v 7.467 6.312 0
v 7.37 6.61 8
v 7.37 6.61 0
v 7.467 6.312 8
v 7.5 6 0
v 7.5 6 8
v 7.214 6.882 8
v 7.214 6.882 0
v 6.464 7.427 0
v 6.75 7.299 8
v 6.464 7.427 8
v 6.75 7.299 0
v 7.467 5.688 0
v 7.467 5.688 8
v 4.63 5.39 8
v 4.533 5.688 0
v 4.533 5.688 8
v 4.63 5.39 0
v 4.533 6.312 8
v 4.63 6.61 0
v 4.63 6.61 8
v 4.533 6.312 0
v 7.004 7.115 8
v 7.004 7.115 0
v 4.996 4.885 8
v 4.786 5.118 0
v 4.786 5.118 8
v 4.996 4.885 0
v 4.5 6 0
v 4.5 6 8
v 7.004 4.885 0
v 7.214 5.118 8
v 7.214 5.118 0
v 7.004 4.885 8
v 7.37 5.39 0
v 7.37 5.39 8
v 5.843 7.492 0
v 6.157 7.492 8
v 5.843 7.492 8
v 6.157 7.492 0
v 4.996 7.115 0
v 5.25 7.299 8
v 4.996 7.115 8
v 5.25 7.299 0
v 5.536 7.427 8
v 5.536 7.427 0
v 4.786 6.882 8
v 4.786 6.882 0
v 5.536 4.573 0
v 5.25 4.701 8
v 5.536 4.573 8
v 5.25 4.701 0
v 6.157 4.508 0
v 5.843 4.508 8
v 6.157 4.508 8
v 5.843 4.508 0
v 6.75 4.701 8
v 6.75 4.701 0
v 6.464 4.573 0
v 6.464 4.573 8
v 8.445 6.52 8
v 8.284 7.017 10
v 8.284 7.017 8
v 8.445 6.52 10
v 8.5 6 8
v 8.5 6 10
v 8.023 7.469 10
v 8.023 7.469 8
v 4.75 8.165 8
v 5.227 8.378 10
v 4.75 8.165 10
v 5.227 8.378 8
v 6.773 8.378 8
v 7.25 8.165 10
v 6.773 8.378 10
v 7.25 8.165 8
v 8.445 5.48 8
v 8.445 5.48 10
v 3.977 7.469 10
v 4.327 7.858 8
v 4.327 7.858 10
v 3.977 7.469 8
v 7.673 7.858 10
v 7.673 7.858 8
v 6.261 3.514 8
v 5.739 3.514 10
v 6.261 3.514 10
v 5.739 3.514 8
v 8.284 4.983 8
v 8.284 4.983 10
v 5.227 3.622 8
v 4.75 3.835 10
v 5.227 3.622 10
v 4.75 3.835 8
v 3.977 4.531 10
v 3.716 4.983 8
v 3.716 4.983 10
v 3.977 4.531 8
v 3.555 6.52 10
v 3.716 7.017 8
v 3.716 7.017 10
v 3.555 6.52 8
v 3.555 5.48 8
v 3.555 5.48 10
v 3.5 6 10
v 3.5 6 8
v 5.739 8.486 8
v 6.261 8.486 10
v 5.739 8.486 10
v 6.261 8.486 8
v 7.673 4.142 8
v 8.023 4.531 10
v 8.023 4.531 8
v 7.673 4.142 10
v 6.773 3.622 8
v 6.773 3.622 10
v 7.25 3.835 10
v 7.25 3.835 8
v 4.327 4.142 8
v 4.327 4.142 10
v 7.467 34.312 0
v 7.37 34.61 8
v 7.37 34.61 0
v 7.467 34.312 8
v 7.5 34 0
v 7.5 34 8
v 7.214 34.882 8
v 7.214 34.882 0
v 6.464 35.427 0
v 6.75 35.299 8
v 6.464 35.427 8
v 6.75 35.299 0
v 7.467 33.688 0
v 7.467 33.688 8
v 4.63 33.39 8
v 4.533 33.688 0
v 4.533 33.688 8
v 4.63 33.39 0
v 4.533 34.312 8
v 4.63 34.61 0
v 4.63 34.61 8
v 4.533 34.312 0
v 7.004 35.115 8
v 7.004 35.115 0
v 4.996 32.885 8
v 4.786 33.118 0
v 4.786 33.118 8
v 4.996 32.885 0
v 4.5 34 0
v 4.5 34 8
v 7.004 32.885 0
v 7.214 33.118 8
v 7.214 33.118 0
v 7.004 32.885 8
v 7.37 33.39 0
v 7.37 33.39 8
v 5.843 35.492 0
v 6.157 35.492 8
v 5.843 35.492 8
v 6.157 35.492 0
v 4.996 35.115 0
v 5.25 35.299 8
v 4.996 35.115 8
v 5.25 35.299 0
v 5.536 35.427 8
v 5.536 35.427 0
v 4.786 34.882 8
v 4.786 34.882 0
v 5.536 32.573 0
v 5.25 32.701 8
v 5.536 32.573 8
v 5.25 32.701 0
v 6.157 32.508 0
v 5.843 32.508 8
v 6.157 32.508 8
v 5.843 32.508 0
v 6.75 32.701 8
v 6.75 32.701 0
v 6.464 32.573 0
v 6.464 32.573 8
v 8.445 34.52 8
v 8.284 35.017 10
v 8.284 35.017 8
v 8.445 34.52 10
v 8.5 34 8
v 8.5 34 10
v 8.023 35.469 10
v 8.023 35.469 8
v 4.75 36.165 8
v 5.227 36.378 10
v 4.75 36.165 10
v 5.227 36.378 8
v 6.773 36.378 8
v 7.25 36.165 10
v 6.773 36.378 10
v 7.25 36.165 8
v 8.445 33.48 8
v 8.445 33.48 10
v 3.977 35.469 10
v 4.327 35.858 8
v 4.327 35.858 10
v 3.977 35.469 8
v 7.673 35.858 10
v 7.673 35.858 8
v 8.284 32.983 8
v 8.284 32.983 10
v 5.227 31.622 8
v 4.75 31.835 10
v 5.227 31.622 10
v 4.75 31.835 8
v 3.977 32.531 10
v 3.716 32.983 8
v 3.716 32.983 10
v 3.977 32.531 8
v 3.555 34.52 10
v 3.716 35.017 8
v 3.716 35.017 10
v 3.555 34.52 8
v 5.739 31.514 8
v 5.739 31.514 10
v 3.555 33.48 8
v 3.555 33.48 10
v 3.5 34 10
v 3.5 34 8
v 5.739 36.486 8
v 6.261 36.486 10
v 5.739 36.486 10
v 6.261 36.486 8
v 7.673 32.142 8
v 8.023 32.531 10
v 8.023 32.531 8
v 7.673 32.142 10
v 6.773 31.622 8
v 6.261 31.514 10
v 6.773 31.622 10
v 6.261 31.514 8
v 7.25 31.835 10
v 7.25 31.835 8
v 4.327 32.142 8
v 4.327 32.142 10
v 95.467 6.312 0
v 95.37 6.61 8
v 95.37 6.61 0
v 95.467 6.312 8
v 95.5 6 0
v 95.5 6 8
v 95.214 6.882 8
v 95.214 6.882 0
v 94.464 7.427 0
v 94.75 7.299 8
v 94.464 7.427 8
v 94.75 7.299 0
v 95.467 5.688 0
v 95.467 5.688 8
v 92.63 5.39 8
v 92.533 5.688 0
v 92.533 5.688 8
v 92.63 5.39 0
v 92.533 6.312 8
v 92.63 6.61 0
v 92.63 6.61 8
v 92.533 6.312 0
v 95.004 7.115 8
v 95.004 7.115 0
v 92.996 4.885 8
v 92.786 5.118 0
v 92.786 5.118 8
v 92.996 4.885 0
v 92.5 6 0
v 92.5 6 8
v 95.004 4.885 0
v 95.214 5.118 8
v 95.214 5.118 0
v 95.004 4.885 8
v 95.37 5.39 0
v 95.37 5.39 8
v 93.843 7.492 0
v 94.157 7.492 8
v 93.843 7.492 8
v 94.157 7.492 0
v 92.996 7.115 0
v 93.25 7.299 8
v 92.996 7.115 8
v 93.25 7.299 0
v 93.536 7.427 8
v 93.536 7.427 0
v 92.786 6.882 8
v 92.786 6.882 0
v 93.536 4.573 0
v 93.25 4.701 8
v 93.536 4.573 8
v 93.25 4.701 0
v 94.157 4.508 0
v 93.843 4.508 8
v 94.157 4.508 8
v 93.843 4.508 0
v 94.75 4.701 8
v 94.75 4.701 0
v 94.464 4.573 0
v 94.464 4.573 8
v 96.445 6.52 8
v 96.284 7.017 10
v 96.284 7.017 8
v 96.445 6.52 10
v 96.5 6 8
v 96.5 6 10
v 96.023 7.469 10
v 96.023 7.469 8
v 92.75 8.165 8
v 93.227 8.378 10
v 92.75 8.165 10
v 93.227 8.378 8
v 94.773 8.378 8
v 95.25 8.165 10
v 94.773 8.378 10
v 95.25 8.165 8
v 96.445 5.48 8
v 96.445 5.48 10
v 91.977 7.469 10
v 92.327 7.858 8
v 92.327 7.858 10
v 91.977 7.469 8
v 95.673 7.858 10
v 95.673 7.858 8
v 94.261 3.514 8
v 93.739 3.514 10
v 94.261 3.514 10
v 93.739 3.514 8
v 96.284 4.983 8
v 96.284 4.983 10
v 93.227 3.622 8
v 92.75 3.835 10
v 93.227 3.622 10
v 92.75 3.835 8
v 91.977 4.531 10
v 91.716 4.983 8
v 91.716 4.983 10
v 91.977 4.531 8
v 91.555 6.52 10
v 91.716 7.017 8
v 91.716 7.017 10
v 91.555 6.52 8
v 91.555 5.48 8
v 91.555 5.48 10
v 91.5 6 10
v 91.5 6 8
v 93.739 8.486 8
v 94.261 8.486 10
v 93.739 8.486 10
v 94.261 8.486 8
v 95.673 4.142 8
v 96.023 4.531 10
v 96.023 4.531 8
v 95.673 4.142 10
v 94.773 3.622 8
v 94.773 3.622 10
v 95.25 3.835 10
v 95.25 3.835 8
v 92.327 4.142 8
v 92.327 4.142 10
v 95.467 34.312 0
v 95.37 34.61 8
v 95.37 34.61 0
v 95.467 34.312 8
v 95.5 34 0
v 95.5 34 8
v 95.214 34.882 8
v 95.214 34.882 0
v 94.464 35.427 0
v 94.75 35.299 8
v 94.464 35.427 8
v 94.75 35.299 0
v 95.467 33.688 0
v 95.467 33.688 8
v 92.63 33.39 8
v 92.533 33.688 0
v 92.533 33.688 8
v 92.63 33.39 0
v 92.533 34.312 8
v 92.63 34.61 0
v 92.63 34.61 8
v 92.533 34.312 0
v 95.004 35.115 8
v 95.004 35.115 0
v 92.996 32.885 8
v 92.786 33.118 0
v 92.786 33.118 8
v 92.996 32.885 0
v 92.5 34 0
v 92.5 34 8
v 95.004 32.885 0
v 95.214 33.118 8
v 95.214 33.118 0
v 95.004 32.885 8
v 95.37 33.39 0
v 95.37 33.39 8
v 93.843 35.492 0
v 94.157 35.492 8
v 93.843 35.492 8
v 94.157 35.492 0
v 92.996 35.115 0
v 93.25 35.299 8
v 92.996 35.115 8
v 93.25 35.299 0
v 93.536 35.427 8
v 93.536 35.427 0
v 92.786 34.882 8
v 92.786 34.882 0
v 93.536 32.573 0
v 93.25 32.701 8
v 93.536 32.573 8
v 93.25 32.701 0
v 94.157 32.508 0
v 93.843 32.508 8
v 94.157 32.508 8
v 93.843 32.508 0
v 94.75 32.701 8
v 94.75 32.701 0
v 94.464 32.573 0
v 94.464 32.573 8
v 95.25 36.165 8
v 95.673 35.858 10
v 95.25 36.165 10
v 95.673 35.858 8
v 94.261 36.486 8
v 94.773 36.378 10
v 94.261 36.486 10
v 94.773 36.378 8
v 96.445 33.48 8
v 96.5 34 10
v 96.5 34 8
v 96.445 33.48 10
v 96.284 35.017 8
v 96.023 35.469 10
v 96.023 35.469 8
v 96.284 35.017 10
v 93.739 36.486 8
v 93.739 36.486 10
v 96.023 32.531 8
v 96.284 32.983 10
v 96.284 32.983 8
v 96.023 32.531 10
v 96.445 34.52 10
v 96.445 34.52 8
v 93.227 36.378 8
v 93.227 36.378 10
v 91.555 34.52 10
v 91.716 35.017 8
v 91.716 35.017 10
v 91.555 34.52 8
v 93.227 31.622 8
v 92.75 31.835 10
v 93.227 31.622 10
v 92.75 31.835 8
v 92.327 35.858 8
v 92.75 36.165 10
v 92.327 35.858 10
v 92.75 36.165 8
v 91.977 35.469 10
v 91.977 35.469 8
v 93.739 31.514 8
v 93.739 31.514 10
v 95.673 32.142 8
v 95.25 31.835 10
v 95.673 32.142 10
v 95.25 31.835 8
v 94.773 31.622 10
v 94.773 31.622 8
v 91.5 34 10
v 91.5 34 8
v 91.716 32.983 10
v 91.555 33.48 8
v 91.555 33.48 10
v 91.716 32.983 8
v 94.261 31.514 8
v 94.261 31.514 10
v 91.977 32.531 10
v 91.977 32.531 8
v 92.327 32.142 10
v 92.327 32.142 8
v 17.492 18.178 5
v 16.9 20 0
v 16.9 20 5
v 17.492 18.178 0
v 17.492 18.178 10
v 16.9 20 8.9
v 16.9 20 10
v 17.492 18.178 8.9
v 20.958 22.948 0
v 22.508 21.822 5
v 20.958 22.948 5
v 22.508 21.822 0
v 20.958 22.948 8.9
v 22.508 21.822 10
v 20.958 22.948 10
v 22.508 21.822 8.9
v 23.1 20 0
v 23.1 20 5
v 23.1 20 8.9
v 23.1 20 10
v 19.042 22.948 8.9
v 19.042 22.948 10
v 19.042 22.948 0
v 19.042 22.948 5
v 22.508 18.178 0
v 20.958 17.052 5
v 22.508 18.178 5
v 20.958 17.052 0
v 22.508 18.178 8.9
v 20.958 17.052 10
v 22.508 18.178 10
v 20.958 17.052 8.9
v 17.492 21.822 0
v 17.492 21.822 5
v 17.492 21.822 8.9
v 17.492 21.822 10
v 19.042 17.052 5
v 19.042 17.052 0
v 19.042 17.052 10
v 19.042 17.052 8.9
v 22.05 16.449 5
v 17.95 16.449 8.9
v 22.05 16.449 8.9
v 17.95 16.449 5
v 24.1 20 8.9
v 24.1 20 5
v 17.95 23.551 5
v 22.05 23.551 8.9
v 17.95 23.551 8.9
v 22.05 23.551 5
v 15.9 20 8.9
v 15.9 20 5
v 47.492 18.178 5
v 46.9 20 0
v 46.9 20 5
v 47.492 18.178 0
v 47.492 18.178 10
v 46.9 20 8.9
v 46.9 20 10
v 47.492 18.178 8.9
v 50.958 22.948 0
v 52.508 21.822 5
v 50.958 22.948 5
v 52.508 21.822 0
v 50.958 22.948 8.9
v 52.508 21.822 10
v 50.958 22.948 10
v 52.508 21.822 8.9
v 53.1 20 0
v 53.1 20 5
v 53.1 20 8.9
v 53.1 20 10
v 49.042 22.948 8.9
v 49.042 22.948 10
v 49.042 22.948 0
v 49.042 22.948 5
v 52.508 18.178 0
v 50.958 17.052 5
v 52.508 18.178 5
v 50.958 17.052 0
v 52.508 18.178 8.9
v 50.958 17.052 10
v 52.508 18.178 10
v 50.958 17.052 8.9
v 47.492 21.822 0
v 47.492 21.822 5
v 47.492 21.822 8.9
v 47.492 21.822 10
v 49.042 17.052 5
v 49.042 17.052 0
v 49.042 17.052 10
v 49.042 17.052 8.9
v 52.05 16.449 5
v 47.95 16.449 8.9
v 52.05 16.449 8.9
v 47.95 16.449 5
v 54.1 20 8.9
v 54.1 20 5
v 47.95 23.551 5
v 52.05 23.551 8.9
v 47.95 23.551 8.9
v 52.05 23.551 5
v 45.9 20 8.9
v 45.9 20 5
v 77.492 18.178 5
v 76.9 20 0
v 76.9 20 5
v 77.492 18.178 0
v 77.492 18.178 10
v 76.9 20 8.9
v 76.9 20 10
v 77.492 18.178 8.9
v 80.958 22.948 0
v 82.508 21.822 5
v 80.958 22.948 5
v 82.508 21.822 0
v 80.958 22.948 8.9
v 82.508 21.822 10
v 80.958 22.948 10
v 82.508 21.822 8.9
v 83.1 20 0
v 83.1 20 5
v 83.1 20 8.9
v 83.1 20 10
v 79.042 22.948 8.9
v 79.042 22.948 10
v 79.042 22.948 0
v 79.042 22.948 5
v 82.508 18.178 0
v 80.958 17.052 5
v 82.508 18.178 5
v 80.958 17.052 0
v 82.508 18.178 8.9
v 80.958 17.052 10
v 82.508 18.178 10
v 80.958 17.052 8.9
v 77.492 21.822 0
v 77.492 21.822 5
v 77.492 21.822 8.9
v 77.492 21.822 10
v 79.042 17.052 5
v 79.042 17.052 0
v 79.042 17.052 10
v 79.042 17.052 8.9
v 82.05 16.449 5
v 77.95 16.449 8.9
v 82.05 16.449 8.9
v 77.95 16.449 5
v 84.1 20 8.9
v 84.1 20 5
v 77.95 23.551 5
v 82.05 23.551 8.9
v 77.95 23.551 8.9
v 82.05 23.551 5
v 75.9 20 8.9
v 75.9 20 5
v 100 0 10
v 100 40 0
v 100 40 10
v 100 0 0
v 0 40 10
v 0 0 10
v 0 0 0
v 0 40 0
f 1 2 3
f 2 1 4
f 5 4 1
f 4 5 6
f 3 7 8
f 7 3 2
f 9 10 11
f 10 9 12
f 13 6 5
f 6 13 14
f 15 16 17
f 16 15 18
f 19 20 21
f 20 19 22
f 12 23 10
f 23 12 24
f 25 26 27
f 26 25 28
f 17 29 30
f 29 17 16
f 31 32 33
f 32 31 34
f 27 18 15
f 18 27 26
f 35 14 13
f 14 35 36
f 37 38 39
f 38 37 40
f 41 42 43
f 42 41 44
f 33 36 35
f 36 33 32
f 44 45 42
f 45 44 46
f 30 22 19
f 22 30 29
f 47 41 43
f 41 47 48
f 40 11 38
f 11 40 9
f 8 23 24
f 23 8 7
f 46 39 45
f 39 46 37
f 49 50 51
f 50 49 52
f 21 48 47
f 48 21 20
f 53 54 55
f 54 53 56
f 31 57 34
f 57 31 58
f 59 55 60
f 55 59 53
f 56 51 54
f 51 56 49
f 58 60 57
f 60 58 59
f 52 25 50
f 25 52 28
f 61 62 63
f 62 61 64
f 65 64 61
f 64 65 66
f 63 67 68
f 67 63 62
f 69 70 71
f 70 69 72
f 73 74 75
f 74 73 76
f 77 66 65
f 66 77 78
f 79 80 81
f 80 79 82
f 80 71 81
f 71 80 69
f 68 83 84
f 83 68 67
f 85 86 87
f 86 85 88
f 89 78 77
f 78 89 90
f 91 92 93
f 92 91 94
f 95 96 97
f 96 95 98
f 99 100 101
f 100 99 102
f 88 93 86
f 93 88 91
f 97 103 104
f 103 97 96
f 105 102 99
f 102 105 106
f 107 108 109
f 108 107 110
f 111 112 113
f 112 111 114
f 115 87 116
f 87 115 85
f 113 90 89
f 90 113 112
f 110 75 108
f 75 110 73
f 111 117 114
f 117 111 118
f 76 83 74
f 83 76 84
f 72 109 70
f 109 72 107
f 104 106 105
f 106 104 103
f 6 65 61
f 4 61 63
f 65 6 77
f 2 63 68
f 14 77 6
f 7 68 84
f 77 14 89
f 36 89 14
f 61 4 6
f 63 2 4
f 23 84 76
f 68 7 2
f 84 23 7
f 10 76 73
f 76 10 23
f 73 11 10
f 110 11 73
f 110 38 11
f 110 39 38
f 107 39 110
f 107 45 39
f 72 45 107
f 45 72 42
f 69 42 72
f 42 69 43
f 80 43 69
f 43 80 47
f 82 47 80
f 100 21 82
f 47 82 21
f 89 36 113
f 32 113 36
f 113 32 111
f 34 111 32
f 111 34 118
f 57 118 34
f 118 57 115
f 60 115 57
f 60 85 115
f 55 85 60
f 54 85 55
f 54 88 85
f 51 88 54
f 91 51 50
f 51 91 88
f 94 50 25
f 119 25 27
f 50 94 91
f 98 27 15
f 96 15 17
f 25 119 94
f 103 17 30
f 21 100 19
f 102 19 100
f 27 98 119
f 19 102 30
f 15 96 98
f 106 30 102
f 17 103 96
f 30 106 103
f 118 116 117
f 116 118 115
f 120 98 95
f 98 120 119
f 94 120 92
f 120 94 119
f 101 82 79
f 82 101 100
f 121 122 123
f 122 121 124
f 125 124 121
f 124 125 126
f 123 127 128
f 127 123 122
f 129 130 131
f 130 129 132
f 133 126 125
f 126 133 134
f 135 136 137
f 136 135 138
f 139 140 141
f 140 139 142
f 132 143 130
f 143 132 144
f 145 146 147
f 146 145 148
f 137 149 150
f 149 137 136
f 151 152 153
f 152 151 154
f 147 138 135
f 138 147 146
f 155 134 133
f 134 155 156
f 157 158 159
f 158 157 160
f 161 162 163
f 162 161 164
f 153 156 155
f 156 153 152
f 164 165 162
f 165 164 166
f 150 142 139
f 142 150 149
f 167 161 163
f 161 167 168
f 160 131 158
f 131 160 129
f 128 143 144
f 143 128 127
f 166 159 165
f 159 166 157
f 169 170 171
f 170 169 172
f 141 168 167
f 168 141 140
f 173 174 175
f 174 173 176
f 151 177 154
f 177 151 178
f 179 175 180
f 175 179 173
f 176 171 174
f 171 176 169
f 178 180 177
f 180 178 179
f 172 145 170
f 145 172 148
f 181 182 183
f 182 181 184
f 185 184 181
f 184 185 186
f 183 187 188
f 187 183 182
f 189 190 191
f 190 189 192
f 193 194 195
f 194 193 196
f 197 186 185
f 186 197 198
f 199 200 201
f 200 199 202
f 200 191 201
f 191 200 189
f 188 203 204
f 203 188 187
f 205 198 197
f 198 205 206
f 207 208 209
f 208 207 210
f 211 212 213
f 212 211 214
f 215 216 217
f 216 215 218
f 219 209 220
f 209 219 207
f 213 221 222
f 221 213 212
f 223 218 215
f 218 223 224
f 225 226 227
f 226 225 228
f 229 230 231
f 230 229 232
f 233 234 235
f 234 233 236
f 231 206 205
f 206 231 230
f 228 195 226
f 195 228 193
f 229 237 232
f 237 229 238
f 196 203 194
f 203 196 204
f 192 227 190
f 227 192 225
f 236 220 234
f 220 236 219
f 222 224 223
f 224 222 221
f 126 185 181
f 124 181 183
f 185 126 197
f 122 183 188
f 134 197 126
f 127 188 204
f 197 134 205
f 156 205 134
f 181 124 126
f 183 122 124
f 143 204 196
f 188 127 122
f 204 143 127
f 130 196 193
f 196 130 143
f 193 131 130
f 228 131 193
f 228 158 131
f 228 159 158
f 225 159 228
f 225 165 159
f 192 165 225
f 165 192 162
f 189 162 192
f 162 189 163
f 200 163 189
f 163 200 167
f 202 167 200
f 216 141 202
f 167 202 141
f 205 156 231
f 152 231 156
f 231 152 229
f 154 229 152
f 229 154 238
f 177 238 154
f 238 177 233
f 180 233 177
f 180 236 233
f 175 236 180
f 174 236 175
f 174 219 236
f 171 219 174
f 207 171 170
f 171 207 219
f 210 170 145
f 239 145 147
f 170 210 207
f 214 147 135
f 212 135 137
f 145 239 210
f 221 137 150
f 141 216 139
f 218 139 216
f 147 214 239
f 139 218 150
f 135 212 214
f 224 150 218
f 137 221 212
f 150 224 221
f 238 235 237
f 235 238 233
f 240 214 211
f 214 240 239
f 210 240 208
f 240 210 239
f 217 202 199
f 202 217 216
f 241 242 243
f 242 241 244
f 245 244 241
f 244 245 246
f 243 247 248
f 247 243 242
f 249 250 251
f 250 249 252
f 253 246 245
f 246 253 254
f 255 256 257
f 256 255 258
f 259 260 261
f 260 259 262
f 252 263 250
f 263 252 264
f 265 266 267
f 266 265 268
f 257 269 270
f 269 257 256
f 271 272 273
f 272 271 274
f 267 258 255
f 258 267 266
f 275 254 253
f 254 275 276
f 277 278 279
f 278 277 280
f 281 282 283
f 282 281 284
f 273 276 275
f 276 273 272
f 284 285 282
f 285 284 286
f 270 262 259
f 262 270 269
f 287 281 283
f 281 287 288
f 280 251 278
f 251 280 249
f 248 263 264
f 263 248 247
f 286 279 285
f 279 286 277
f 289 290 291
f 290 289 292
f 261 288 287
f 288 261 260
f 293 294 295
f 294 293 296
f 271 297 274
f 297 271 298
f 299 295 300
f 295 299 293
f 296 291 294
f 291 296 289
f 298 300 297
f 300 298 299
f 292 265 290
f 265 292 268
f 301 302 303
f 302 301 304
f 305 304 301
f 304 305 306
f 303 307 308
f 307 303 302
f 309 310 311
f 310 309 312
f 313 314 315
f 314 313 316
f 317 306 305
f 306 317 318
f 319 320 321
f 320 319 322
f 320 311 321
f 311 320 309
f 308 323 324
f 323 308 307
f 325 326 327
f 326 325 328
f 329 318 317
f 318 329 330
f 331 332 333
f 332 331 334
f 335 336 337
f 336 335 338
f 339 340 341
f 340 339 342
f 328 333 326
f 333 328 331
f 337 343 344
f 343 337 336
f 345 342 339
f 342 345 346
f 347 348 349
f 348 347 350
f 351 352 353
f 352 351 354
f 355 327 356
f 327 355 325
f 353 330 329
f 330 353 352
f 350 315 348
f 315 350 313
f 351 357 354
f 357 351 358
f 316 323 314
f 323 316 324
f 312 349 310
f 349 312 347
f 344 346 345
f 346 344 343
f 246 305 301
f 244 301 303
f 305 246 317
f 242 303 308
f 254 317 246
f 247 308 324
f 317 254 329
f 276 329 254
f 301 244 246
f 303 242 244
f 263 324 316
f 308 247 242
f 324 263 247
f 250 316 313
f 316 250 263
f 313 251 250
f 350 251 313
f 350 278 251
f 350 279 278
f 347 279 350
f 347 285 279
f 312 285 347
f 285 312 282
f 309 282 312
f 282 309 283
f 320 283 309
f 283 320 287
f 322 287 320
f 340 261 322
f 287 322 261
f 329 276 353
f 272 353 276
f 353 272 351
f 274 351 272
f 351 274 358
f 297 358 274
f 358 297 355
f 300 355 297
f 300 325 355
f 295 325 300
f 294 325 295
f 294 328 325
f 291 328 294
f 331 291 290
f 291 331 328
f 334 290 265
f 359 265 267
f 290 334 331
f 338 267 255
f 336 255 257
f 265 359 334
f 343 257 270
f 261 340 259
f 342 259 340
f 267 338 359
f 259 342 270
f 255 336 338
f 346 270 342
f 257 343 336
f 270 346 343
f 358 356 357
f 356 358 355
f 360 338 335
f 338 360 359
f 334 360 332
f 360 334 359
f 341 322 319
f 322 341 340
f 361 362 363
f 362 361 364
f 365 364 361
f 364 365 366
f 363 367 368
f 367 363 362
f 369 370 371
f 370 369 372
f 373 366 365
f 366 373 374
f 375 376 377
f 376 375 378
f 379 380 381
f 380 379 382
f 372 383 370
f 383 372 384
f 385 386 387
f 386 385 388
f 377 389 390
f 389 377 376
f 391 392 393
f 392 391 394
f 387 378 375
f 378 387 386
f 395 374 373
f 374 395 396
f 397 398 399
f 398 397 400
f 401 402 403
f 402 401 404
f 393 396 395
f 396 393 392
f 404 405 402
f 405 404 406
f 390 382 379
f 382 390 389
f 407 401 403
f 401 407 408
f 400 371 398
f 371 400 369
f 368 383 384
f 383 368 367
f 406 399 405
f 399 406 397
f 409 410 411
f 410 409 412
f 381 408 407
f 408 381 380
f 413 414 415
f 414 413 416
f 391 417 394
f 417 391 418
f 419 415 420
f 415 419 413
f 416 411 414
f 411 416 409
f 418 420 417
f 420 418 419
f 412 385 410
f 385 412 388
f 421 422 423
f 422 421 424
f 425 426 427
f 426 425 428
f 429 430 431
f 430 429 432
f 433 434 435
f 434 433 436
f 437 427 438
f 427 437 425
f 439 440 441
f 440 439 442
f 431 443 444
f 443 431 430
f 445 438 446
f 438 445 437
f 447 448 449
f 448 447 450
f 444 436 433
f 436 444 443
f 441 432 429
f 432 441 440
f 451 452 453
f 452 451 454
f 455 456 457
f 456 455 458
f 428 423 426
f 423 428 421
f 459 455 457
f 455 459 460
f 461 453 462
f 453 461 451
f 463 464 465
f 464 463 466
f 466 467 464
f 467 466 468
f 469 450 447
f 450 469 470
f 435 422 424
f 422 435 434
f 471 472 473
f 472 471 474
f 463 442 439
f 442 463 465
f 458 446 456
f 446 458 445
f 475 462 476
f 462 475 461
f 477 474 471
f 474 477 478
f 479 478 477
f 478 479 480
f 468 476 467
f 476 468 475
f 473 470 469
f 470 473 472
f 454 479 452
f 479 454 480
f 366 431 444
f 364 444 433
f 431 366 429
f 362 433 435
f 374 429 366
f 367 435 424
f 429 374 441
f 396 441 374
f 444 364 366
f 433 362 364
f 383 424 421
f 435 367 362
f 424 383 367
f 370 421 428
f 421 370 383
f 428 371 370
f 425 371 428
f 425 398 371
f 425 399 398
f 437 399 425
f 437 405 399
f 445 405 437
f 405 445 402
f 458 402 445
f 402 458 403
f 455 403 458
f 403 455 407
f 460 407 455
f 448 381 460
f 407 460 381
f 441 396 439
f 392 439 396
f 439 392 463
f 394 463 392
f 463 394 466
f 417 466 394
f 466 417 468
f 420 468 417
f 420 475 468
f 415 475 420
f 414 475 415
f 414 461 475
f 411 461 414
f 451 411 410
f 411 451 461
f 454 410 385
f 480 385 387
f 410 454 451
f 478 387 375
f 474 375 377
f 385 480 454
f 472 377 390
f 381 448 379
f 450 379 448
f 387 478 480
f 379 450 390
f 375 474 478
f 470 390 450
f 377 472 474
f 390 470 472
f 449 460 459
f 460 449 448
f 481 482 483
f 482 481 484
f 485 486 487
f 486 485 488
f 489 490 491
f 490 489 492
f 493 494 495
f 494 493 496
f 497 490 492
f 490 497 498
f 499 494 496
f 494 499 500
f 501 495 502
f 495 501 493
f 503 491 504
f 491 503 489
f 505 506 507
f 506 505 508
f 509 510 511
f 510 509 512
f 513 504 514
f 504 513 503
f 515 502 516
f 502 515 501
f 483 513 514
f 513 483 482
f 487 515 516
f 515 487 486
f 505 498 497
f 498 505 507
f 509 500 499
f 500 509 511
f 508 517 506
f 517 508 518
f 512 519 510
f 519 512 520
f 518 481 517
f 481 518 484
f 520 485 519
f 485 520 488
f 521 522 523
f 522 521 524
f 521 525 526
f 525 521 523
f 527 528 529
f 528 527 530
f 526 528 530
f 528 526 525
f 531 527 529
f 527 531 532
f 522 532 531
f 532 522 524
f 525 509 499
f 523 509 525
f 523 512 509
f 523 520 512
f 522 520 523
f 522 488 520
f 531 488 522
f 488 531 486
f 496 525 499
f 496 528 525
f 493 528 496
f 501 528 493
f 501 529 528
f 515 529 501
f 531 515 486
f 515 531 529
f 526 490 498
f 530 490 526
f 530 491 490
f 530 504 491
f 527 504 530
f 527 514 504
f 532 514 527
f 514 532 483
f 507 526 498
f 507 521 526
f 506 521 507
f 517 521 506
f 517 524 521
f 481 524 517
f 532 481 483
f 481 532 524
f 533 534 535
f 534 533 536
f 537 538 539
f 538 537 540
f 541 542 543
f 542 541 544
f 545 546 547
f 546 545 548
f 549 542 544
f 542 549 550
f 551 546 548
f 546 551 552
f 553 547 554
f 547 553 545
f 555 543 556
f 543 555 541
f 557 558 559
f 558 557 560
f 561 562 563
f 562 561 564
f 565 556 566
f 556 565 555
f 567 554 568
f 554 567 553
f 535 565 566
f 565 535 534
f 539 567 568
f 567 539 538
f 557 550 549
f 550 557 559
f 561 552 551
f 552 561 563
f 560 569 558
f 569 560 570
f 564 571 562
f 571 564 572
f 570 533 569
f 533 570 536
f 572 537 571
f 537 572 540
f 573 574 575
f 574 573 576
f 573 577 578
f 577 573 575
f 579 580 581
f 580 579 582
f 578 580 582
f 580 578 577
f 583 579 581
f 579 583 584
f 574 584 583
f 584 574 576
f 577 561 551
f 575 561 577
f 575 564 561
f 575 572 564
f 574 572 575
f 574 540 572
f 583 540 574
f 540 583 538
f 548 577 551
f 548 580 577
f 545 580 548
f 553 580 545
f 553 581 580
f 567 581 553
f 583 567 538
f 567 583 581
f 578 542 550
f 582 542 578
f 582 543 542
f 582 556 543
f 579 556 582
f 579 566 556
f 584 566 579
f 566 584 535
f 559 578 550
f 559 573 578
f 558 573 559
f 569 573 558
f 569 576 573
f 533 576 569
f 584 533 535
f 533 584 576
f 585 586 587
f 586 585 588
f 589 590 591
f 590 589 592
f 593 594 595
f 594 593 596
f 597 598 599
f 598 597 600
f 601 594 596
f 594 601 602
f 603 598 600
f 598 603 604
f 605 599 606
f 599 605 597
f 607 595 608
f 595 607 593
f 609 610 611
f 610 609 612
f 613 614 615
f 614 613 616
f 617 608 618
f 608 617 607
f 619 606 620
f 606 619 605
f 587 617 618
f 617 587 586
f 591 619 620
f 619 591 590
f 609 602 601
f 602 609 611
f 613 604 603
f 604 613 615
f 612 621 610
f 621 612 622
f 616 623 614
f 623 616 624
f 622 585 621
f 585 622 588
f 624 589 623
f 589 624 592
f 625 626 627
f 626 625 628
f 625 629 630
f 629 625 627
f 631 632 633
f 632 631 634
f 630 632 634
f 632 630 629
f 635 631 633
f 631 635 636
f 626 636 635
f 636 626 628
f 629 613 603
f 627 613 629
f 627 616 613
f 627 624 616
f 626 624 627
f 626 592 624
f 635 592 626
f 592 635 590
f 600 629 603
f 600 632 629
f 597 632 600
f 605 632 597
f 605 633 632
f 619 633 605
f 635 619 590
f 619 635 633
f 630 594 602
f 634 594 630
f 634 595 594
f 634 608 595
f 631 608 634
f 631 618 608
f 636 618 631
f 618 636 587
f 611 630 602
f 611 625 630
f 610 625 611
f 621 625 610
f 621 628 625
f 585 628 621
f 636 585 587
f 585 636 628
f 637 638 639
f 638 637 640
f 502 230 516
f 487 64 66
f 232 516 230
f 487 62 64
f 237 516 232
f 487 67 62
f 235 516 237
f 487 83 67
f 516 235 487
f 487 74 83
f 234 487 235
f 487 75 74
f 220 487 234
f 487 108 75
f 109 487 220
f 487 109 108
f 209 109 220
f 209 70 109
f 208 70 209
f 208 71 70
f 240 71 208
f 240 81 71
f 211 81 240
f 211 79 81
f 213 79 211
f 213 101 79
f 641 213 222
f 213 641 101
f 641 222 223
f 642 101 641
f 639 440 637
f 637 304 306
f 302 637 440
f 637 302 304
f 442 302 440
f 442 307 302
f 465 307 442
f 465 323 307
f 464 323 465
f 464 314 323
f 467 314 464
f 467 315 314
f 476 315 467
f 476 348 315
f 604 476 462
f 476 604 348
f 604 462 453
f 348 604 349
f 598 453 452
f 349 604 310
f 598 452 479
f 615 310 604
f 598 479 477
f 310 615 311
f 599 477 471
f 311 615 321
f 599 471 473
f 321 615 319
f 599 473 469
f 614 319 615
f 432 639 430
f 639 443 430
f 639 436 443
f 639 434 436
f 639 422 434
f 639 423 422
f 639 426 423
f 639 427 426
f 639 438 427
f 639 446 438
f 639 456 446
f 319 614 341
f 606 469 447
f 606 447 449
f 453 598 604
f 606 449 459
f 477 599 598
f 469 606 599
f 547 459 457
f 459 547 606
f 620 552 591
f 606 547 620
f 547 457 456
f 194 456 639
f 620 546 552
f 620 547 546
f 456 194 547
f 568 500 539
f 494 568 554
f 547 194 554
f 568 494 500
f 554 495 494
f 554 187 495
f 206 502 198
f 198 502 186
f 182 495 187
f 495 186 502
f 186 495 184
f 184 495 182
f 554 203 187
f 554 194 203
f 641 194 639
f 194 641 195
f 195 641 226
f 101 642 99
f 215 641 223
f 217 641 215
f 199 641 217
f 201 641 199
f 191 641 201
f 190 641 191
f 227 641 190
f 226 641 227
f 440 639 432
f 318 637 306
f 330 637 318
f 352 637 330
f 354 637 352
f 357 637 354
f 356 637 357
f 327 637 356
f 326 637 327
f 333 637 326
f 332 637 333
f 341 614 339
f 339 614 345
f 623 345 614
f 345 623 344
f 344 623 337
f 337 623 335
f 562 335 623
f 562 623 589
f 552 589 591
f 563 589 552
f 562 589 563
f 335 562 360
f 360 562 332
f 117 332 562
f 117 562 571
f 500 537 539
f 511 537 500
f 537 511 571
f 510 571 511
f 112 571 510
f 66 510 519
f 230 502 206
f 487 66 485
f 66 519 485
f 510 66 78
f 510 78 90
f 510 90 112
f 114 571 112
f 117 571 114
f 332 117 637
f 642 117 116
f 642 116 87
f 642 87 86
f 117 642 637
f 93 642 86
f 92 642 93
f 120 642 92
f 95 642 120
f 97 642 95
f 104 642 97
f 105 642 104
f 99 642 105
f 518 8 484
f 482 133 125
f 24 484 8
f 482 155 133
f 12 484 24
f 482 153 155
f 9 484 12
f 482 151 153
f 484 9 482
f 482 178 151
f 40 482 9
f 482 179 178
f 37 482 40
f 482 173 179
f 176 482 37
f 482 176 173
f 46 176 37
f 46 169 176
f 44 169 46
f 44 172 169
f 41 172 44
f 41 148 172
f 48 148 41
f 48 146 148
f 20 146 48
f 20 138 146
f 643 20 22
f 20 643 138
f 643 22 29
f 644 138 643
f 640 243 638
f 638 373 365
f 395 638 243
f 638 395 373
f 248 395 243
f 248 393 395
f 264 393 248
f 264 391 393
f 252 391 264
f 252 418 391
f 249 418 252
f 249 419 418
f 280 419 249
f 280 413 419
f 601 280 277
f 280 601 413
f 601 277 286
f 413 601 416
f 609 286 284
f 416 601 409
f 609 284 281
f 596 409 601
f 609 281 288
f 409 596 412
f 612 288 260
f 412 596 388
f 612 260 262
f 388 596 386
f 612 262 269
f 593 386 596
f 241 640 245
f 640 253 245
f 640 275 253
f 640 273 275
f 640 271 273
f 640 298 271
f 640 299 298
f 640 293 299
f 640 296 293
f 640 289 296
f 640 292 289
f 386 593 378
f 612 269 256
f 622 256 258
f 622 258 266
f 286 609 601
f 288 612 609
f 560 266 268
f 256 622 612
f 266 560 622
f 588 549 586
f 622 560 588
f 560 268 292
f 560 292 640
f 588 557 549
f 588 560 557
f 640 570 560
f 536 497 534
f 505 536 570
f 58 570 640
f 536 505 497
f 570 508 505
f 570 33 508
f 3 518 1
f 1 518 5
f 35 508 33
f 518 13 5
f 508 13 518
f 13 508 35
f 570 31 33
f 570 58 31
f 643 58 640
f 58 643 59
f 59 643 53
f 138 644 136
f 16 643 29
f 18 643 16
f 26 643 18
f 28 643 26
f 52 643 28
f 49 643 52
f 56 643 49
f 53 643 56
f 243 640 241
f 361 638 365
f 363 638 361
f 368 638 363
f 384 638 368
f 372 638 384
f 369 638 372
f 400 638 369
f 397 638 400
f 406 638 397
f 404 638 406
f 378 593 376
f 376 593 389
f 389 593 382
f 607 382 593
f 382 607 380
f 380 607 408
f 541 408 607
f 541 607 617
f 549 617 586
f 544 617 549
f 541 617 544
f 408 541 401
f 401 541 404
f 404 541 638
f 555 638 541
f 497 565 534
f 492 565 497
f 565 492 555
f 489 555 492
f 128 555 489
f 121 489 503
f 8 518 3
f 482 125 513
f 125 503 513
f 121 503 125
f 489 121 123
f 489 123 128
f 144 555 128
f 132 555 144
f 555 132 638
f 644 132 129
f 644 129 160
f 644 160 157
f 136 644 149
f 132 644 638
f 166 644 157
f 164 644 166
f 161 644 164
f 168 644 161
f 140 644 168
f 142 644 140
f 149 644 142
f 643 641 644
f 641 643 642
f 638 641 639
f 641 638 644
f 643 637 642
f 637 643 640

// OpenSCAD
w = 100;
l = 40;

h = 10;

screw_radius = 1.5;
screw_counter_sink_radius = 2.5;
screw_offset = 6;

nut_capture_dims = [4.1, 3.1, 3.9];

module nut_capture($nut_outer_radius = 3.5, $nut_inner_radius = 2, $nut_height = 3) {
    cylinder(r=$nut_inner_radius, h=h+2);
    translate([0, 0, 6]) {
        cylinder(r=$nut_outer_radius, h=$nut_height, $fn=6);
    }
}

difference() {
    cube([w, l, h]);

    // Nut capture
    translate([w/5, l/2, -1]) {
        nut_capture(nut_capture_dims[0], nut_capture_dims[1], nut_capture_dims[2]);
    }
    
    translate([w/2, l/2, -1]) {
        nut_capture(nut_capture_dims[0], nut_capture_dims[1], nut_capture_dims[2]);
    }   
    
    translate([w/5*4, l/2, -1]) {
        nut_capture(nut_capture_dims[0], nut_capture_dims[1], nut_capture_dims[2]);
    }

    // Screw hole at each corner
    for (x = [screw_offset, w - screw_offset]) {
        for (y = [screw_offset, l - screw_offset]) {
            translate([x, y, -1]) {
                // Add a counter sunk hole
                cylinder(r = screw_radius, h = h + 2, $fn = 30);
                // Add a screw head capture
                translate([0, 0, 9]) {
                    cylinder(r = screw_counter_sink_radius, h = 3, $fn = 30);
                }
            }
        }
    }
    
    // Cut outs at bottom for adhesive tape
    // translate([5, 10, -1]) {
    //     cube([10, 20, 2]);
    // }
    
    //  translate([85, 10, -1]) {
    //     cube([10, 20, 2]);
    // }
}
